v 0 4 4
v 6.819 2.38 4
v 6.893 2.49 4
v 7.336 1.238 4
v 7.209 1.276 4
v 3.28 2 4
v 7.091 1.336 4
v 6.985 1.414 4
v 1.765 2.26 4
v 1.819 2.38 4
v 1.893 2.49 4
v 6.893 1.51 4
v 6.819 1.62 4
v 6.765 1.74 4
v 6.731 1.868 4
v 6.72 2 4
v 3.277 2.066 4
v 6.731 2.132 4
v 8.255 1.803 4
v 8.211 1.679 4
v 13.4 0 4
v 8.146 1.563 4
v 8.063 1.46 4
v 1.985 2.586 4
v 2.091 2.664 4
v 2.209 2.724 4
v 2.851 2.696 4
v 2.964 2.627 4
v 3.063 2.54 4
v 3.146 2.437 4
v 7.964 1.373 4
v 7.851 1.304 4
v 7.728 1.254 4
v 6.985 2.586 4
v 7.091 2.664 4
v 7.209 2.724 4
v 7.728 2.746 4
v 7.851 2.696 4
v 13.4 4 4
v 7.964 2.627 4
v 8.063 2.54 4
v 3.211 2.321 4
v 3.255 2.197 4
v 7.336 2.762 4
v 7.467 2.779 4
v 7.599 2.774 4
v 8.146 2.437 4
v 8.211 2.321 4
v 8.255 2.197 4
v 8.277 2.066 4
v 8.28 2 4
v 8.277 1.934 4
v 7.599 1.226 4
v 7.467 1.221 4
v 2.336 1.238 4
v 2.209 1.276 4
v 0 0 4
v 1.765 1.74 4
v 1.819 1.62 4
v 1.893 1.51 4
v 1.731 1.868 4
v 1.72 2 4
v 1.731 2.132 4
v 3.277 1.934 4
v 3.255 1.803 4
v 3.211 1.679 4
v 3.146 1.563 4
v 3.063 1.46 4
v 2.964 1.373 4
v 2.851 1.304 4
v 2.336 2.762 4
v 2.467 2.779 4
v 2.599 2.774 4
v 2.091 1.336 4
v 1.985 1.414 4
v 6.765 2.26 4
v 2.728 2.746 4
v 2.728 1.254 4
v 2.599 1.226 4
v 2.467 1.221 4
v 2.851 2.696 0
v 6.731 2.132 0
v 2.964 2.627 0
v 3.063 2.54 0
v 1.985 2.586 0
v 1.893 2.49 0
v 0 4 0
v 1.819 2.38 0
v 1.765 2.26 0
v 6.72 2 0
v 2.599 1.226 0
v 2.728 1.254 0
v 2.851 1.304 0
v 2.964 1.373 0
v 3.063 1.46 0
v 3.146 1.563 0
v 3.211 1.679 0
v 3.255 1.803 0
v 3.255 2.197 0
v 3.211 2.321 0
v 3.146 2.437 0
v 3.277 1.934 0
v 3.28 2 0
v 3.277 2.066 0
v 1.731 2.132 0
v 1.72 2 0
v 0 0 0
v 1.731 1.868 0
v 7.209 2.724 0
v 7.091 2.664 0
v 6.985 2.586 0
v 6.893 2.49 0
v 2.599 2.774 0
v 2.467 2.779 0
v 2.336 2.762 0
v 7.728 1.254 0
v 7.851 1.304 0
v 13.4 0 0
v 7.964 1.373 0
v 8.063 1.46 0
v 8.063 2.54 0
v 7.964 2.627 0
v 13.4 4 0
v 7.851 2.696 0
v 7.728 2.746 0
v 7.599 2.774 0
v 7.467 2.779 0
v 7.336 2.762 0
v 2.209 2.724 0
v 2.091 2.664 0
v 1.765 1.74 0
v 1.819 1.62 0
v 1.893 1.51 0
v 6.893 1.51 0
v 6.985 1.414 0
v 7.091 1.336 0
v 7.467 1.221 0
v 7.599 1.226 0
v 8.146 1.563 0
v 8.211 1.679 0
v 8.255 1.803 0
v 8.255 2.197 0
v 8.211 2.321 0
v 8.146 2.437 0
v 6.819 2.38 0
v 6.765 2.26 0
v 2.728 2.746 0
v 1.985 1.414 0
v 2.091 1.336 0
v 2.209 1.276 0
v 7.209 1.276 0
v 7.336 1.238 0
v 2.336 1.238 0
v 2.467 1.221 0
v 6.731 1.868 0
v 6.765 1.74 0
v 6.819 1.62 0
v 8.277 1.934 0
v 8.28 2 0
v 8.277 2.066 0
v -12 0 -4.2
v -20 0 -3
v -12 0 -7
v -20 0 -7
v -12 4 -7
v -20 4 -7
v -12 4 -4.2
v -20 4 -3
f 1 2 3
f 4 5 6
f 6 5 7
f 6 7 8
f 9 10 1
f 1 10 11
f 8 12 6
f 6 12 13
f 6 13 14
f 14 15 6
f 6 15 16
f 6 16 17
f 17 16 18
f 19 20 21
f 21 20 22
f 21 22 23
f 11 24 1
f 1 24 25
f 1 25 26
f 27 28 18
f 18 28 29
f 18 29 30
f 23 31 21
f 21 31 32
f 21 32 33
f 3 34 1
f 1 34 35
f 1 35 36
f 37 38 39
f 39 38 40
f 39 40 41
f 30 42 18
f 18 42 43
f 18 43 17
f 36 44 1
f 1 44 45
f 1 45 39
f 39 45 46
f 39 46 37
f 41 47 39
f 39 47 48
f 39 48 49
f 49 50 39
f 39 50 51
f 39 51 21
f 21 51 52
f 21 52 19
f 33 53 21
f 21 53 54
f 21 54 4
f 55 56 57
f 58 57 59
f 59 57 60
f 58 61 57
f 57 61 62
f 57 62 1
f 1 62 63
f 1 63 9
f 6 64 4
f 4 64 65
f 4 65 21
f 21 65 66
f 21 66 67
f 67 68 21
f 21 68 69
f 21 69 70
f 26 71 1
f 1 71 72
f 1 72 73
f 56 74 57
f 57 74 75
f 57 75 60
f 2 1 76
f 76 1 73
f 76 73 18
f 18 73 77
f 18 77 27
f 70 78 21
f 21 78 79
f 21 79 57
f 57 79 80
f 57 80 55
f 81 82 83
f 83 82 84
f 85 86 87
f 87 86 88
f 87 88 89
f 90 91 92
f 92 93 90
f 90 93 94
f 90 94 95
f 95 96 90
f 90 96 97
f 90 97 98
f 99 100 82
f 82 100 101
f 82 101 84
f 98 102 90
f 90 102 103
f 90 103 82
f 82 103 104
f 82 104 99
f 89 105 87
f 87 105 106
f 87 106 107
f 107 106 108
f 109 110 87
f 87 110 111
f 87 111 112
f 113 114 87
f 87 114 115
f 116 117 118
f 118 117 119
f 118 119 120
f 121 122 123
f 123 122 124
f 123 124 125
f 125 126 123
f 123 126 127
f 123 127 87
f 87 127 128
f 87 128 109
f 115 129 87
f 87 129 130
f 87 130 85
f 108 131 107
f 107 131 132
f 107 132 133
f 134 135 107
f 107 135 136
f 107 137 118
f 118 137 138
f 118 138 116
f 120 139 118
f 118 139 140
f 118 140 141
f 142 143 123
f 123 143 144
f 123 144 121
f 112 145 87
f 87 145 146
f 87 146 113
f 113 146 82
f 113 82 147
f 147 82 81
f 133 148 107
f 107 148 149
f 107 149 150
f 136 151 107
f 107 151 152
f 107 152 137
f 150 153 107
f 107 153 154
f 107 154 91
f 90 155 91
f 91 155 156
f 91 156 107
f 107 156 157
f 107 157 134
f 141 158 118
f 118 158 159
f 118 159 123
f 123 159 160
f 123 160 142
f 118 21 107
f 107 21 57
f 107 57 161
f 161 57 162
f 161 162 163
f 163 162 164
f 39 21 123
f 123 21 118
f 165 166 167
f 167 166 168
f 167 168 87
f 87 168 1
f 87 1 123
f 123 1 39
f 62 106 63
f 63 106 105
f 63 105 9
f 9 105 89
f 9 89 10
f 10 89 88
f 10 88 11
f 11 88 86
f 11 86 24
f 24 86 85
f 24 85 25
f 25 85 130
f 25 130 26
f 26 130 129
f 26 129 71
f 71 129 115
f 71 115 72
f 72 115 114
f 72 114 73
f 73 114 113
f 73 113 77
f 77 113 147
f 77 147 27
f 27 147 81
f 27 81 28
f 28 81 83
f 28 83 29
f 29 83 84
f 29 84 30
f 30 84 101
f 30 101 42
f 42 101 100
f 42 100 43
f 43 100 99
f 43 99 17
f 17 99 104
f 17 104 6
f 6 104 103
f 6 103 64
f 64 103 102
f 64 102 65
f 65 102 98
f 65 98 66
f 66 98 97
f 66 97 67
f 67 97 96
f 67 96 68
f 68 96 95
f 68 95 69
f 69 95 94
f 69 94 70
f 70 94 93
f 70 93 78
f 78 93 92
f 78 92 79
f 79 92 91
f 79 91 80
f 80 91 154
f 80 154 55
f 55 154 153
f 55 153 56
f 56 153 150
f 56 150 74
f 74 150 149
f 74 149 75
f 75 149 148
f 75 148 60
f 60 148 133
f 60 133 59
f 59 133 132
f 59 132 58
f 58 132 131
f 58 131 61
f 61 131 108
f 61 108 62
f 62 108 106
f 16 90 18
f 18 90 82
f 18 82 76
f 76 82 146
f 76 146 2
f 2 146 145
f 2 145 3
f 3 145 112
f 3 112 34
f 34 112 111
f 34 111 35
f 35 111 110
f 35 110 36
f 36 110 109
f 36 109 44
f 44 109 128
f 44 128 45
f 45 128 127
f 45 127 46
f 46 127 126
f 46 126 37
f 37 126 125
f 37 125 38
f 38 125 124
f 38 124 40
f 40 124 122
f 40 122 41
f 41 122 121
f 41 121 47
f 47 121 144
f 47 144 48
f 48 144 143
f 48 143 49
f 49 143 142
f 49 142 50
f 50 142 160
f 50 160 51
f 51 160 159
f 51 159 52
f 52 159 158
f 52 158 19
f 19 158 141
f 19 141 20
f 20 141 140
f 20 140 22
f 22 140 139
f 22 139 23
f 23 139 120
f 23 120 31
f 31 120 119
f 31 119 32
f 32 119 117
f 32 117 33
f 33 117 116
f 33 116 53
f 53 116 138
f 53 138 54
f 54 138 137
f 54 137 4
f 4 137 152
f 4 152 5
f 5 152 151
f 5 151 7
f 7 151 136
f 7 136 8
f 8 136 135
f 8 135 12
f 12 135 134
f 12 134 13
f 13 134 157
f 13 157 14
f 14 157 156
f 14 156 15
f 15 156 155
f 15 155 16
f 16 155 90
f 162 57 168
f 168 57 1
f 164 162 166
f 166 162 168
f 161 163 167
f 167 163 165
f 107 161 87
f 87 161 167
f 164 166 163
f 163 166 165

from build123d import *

# Parameters (mm, degrees)
SKETCH3_W           = 13.4
SKETCH3_H           = 4
SKETCH3_R           = 0.78
BOSS_EXTRUDE1_DEPTH = 4
BOSS_EXTRUDE2_DEPTH = 4
SKETCH5_W           = 8
SKETCH5_H           = 4
BOSS_EXTRUDE3_DEPTH = 1


with BuildPart() as part:
    # Sketch3 → Boss-Extrude1 (new body)
    with BuildSketch(Plane.XY):
        with Locations((6.7, 2)):
            Rectangle(SKETCH3_W, SKETCH3_H)
        with Locations((2.5, 2)):
            Circle(SKETCH3_R, mode=Mode.SUBTRACT)
        with Locations((7.5, 2)):
            Circle(SKETCH3_R, mode=Mode.SUBTRACT)
    extrude(amount=BOSS_EXTRUDE1_DEPTH)

    # Sketch4 → Boss-Extrude2 (add)
    with BuildSketch(Plane(origin=(0, 4, 0), x_dir=(1, 0, 0), z_dir=(0, 1, 0))):
        Polygon((0, -4), (-20, 3), (-20, 6), (-12, 6), (-12, 4.2), (0, 0), align=None)
    extrude(amount=-BOSS_EXTRUDE2_DEPTH)

    # Sketch5 → Boss-Extrude3 (add)
    with BuildSketch(Plane(origin=(0, 0, -6), x_dir=(-1, 0, 0), z_dir=(0, 0, -1))):
        with Locations((16, 2)):
            Rectangle(SKETCH5_W, SKETCH5_H)
    extrude(amount=BOSS_EXTRUDE3_DEPTH)


solid = part.part
